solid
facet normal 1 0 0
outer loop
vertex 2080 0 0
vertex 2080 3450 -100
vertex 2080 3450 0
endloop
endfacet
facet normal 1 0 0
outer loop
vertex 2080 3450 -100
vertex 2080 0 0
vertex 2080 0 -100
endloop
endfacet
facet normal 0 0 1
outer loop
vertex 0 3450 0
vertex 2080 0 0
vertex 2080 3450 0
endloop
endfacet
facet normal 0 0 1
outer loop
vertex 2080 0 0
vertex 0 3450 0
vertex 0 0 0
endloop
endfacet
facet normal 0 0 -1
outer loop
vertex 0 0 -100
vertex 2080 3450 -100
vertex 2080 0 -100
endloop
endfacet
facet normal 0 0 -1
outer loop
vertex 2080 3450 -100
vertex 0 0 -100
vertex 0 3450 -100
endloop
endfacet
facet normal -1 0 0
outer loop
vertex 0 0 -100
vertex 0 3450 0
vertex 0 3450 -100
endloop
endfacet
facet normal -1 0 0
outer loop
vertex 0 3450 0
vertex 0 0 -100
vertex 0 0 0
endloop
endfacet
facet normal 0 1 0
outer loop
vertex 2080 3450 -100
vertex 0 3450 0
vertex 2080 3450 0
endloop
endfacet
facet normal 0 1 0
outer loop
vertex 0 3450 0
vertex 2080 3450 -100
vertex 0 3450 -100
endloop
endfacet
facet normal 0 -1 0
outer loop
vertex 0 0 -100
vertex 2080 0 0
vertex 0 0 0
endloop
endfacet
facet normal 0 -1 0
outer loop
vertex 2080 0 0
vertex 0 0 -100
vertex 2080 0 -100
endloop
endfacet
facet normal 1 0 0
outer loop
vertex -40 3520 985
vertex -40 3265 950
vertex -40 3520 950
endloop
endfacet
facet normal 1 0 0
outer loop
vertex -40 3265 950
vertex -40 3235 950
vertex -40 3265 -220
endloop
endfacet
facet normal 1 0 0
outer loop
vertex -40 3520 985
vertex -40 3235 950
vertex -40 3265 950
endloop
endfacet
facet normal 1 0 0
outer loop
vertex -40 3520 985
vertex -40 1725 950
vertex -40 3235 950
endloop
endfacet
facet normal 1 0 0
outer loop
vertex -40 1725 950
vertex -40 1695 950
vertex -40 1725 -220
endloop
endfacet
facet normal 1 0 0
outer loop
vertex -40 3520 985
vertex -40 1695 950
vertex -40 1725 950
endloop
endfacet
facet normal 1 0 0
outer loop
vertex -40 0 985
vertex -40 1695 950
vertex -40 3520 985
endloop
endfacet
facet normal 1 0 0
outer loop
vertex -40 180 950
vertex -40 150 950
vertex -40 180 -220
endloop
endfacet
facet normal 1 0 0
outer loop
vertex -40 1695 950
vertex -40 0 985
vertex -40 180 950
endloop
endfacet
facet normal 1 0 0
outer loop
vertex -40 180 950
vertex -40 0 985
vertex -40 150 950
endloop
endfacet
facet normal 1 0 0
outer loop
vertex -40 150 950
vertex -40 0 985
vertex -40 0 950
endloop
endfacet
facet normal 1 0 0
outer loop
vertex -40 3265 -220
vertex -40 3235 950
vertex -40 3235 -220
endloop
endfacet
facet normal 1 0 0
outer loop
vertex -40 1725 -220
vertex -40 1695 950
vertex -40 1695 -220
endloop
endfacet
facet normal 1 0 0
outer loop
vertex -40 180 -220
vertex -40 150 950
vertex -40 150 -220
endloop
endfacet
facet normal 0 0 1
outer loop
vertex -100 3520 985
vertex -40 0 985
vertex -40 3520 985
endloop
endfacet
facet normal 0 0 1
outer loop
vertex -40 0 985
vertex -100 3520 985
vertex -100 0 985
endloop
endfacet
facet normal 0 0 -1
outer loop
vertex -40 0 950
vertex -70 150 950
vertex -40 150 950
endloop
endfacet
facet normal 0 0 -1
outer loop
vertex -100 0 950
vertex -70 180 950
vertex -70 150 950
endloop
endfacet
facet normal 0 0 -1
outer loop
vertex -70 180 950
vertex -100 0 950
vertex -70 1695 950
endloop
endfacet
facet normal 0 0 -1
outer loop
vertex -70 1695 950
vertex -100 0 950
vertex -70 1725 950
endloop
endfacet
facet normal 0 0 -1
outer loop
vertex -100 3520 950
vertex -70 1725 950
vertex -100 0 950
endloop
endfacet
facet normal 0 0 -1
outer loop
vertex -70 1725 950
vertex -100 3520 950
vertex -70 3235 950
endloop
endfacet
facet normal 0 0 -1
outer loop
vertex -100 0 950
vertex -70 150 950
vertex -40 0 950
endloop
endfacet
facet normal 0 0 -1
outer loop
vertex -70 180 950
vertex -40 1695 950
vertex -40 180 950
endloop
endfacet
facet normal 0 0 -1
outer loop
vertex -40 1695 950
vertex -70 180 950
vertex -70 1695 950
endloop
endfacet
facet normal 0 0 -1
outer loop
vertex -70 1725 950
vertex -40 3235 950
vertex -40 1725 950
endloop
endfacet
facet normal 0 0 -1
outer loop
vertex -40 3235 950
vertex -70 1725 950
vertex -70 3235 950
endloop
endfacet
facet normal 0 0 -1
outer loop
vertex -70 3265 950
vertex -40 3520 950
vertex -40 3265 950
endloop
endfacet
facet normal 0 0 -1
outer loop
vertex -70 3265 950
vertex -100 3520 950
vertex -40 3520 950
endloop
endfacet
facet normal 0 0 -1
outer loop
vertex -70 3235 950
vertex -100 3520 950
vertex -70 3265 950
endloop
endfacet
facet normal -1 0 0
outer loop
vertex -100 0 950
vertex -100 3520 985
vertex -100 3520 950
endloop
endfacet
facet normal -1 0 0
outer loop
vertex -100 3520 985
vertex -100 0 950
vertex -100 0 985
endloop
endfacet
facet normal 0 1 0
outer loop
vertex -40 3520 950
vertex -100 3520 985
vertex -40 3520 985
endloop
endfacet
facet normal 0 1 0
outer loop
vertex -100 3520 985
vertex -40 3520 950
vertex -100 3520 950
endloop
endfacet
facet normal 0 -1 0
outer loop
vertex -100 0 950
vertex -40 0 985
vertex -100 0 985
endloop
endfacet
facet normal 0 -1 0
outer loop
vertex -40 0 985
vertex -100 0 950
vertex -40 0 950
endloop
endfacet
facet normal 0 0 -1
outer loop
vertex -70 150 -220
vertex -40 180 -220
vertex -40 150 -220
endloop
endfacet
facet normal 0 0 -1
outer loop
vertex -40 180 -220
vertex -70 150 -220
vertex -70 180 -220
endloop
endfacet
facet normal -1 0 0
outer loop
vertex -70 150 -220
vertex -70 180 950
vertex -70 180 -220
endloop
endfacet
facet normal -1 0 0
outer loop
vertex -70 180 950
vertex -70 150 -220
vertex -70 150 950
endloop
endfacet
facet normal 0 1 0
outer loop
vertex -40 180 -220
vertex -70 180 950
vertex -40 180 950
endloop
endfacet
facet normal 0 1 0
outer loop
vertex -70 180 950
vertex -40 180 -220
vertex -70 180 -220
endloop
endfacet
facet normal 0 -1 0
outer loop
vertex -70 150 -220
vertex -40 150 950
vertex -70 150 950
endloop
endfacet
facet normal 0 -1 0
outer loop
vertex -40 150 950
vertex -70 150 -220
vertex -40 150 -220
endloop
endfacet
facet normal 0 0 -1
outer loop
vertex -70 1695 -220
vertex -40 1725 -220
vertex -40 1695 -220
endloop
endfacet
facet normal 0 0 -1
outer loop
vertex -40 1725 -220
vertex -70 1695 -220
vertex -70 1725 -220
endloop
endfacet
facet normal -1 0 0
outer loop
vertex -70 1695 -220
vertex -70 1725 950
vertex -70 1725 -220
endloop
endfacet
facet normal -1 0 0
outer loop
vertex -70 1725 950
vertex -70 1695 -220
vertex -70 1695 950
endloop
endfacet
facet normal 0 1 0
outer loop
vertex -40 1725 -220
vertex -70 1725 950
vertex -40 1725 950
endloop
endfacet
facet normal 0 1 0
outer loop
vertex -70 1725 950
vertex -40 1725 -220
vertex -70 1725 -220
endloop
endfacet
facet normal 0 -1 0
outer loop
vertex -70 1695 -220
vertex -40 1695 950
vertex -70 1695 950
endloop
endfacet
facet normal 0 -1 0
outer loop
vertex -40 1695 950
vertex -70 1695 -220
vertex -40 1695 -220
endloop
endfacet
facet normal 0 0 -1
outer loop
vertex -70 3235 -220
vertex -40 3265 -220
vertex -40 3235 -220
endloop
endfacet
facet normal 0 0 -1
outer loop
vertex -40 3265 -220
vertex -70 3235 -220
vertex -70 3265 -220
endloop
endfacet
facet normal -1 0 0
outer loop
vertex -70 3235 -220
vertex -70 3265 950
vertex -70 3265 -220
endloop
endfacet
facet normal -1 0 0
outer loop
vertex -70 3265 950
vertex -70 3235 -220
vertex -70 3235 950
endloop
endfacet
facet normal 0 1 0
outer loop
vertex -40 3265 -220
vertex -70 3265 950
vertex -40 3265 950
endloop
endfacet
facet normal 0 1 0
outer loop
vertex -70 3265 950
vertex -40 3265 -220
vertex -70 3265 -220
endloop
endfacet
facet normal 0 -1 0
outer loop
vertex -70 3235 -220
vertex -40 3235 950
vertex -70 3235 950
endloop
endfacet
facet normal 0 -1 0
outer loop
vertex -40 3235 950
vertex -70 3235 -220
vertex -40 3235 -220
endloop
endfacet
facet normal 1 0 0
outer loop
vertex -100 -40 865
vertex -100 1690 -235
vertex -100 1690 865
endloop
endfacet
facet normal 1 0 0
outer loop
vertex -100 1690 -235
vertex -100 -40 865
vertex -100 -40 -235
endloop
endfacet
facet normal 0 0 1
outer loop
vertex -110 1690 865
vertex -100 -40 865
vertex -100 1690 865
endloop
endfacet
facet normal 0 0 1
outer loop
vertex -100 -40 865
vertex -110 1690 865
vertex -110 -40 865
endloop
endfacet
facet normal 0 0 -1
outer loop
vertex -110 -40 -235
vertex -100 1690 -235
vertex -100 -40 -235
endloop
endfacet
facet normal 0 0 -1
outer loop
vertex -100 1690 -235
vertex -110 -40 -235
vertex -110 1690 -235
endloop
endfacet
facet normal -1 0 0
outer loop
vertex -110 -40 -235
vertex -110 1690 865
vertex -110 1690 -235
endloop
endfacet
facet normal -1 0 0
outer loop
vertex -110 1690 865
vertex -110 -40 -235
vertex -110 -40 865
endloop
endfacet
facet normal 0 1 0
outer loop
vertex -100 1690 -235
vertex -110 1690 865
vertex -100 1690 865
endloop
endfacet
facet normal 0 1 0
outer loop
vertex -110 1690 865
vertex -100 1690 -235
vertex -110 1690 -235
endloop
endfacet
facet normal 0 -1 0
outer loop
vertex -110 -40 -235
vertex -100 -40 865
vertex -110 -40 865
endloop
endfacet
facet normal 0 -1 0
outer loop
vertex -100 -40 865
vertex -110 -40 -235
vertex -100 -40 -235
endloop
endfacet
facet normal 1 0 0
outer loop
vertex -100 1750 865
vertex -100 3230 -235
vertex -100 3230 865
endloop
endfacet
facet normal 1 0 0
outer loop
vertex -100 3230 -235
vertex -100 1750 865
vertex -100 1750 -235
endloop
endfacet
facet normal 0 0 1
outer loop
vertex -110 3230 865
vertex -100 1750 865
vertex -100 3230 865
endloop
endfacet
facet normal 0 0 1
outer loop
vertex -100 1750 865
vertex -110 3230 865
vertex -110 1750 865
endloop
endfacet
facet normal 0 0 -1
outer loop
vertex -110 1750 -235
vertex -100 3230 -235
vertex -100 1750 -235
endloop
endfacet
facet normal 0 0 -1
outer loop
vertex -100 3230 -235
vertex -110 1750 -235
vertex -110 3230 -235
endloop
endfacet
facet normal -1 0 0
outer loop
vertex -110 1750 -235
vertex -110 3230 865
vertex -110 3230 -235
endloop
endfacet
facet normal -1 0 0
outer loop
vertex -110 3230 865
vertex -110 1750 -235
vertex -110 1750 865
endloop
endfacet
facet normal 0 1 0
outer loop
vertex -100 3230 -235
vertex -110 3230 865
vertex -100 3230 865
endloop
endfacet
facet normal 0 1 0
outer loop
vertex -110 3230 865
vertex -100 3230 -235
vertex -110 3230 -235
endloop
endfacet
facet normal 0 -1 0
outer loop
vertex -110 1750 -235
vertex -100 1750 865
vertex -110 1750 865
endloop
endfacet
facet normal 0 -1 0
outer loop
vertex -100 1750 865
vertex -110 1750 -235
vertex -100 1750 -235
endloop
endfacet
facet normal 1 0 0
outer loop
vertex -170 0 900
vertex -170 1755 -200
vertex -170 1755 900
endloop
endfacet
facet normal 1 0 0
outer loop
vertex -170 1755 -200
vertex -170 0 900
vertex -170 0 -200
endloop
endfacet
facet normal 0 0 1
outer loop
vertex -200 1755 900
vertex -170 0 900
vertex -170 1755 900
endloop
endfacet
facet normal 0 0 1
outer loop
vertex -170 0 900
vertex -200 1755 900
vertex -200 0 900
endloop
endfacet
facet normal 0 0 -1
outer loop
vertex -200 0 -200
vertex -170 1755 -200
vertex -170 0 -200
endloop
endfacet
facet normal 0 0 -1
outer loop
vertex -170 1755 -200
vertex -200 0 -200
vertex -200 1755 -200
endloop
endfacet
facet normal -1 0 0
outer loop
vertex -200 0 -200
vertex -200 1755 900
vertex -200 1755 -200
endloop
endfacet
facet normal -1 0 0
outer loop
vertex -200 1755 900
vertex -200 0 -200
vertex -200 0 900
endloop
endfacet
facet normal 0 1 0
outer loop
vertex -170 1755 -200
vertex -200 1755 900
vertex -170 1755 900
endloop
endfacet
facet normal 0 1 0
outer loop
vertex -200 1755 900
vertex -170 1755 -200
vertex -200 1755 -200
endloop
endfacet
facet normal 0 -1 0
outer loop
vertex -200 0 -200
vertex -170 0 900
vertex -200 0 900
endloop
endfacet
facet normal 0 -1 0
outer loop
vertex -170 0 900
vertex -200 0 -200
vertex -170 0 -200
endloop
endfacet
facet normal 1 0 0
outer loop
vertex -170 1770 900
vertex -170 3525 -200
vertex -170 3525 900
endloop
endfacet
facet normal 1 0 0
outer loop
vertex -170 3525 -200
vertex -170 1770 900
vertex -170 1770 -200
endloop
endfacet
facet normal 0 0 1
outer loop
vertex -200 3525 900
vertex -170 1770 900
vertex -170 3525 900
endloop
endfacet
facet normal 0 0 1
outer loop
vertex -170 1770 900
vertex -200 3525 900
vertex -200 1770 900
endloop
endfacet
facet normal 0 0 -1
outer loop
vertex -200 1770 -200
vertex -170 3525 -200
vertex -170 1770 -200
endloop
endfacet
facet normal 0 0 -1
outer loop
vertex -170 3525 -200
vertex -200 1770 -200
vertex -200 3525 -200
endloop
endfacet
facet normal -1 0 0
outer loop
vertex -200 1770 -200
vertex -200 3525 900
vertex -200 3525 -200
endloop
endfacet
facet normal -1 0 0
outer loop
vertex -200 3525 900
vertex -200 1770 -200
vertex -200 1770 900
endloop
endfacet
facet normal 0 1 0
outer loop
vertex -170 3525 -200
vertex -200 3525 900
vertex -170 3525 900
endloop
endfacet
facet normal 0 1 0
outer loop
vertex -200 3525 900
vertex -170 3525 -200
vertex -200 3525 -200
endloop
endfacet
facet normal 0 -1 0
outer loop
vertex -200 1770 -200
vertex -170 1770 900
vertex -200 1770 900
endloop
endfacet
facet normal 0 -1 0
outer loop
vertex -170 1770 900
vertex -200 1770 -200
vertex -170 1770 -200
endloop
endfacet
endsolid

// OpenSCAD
//handrail
handRailH=35;
handRailD=60;
handRailL=3.52*10*100;
//Post(s)
postX=30;
postY=30;
postH=1.17*10*100;
postOff=handRailD-postY;
post1Pos=15*10;
post2Pos=1.695*10*100;
post3Pos=3.235*10*100;
//Balcony
balconyD=2.08*10*100;
balconyW=3.45*10*100;
railOff=[-100,0,95*10];
blech1W=1.73*10*100;
blech1H=1.10*10*100;
blech1OffX=-2.5*10;//inside post1pos
blech1OffY=-8.5*10;//inside RailH
blech2W=1.48*10*100;
blech2H=1.10*10*100;
blech2OffX=-2.5*10;//inside post1pos
blech2OffY=blech1OffY;
//solar panel
panelW=1.755*10*100;//m
panelH=1.10*10*100;//m
panelD=30;//mm

module HandRail() {
    color([.6,.6,.6])
        translate (railOff)
            cube([handRailD,handRailL,handRailH]);
}

module HandRail() {
    color([.6,.6,.6])
        translate (railOff)
            cube([handRailD,handRailL,handRailH]);
}
module Post(pos) {
    color([.6,.6,.6])
        translate (railOff)
            translate([postOff,pos,-postH])
                cube([postX,postY,postH]);
}
module Blech(pos,w,h) {
    color([.6,.6,.6])
        translate (railOff)
            translate([0,pos,0])
                translate ([-10,-w,-h + blech1OffY])
                    cube([10,w,h]);
}
module Panel(x,y,z) {
    color([.1,.1,.3])
        translate([x,y,z])
            translate([0,0,0])
                cube([panelD,panelW,panelH]);
}
//balcony
color([.8,.8,.8]) translate ([0,0,-100]) cube([balconyD,balconyW,100]);

HandRail();
Post(post1Pos);
Post(post2Pos);
Post(post3Pos);
Blech(post2Pos-postX-blech1OffX,blech1W,blech1H);
Blech(post3Pos-postX-blech2OffX,blech2W,blech2H);

Panel(-200,0,-200);
Panel(-200,1.75*1000+20,-200);
